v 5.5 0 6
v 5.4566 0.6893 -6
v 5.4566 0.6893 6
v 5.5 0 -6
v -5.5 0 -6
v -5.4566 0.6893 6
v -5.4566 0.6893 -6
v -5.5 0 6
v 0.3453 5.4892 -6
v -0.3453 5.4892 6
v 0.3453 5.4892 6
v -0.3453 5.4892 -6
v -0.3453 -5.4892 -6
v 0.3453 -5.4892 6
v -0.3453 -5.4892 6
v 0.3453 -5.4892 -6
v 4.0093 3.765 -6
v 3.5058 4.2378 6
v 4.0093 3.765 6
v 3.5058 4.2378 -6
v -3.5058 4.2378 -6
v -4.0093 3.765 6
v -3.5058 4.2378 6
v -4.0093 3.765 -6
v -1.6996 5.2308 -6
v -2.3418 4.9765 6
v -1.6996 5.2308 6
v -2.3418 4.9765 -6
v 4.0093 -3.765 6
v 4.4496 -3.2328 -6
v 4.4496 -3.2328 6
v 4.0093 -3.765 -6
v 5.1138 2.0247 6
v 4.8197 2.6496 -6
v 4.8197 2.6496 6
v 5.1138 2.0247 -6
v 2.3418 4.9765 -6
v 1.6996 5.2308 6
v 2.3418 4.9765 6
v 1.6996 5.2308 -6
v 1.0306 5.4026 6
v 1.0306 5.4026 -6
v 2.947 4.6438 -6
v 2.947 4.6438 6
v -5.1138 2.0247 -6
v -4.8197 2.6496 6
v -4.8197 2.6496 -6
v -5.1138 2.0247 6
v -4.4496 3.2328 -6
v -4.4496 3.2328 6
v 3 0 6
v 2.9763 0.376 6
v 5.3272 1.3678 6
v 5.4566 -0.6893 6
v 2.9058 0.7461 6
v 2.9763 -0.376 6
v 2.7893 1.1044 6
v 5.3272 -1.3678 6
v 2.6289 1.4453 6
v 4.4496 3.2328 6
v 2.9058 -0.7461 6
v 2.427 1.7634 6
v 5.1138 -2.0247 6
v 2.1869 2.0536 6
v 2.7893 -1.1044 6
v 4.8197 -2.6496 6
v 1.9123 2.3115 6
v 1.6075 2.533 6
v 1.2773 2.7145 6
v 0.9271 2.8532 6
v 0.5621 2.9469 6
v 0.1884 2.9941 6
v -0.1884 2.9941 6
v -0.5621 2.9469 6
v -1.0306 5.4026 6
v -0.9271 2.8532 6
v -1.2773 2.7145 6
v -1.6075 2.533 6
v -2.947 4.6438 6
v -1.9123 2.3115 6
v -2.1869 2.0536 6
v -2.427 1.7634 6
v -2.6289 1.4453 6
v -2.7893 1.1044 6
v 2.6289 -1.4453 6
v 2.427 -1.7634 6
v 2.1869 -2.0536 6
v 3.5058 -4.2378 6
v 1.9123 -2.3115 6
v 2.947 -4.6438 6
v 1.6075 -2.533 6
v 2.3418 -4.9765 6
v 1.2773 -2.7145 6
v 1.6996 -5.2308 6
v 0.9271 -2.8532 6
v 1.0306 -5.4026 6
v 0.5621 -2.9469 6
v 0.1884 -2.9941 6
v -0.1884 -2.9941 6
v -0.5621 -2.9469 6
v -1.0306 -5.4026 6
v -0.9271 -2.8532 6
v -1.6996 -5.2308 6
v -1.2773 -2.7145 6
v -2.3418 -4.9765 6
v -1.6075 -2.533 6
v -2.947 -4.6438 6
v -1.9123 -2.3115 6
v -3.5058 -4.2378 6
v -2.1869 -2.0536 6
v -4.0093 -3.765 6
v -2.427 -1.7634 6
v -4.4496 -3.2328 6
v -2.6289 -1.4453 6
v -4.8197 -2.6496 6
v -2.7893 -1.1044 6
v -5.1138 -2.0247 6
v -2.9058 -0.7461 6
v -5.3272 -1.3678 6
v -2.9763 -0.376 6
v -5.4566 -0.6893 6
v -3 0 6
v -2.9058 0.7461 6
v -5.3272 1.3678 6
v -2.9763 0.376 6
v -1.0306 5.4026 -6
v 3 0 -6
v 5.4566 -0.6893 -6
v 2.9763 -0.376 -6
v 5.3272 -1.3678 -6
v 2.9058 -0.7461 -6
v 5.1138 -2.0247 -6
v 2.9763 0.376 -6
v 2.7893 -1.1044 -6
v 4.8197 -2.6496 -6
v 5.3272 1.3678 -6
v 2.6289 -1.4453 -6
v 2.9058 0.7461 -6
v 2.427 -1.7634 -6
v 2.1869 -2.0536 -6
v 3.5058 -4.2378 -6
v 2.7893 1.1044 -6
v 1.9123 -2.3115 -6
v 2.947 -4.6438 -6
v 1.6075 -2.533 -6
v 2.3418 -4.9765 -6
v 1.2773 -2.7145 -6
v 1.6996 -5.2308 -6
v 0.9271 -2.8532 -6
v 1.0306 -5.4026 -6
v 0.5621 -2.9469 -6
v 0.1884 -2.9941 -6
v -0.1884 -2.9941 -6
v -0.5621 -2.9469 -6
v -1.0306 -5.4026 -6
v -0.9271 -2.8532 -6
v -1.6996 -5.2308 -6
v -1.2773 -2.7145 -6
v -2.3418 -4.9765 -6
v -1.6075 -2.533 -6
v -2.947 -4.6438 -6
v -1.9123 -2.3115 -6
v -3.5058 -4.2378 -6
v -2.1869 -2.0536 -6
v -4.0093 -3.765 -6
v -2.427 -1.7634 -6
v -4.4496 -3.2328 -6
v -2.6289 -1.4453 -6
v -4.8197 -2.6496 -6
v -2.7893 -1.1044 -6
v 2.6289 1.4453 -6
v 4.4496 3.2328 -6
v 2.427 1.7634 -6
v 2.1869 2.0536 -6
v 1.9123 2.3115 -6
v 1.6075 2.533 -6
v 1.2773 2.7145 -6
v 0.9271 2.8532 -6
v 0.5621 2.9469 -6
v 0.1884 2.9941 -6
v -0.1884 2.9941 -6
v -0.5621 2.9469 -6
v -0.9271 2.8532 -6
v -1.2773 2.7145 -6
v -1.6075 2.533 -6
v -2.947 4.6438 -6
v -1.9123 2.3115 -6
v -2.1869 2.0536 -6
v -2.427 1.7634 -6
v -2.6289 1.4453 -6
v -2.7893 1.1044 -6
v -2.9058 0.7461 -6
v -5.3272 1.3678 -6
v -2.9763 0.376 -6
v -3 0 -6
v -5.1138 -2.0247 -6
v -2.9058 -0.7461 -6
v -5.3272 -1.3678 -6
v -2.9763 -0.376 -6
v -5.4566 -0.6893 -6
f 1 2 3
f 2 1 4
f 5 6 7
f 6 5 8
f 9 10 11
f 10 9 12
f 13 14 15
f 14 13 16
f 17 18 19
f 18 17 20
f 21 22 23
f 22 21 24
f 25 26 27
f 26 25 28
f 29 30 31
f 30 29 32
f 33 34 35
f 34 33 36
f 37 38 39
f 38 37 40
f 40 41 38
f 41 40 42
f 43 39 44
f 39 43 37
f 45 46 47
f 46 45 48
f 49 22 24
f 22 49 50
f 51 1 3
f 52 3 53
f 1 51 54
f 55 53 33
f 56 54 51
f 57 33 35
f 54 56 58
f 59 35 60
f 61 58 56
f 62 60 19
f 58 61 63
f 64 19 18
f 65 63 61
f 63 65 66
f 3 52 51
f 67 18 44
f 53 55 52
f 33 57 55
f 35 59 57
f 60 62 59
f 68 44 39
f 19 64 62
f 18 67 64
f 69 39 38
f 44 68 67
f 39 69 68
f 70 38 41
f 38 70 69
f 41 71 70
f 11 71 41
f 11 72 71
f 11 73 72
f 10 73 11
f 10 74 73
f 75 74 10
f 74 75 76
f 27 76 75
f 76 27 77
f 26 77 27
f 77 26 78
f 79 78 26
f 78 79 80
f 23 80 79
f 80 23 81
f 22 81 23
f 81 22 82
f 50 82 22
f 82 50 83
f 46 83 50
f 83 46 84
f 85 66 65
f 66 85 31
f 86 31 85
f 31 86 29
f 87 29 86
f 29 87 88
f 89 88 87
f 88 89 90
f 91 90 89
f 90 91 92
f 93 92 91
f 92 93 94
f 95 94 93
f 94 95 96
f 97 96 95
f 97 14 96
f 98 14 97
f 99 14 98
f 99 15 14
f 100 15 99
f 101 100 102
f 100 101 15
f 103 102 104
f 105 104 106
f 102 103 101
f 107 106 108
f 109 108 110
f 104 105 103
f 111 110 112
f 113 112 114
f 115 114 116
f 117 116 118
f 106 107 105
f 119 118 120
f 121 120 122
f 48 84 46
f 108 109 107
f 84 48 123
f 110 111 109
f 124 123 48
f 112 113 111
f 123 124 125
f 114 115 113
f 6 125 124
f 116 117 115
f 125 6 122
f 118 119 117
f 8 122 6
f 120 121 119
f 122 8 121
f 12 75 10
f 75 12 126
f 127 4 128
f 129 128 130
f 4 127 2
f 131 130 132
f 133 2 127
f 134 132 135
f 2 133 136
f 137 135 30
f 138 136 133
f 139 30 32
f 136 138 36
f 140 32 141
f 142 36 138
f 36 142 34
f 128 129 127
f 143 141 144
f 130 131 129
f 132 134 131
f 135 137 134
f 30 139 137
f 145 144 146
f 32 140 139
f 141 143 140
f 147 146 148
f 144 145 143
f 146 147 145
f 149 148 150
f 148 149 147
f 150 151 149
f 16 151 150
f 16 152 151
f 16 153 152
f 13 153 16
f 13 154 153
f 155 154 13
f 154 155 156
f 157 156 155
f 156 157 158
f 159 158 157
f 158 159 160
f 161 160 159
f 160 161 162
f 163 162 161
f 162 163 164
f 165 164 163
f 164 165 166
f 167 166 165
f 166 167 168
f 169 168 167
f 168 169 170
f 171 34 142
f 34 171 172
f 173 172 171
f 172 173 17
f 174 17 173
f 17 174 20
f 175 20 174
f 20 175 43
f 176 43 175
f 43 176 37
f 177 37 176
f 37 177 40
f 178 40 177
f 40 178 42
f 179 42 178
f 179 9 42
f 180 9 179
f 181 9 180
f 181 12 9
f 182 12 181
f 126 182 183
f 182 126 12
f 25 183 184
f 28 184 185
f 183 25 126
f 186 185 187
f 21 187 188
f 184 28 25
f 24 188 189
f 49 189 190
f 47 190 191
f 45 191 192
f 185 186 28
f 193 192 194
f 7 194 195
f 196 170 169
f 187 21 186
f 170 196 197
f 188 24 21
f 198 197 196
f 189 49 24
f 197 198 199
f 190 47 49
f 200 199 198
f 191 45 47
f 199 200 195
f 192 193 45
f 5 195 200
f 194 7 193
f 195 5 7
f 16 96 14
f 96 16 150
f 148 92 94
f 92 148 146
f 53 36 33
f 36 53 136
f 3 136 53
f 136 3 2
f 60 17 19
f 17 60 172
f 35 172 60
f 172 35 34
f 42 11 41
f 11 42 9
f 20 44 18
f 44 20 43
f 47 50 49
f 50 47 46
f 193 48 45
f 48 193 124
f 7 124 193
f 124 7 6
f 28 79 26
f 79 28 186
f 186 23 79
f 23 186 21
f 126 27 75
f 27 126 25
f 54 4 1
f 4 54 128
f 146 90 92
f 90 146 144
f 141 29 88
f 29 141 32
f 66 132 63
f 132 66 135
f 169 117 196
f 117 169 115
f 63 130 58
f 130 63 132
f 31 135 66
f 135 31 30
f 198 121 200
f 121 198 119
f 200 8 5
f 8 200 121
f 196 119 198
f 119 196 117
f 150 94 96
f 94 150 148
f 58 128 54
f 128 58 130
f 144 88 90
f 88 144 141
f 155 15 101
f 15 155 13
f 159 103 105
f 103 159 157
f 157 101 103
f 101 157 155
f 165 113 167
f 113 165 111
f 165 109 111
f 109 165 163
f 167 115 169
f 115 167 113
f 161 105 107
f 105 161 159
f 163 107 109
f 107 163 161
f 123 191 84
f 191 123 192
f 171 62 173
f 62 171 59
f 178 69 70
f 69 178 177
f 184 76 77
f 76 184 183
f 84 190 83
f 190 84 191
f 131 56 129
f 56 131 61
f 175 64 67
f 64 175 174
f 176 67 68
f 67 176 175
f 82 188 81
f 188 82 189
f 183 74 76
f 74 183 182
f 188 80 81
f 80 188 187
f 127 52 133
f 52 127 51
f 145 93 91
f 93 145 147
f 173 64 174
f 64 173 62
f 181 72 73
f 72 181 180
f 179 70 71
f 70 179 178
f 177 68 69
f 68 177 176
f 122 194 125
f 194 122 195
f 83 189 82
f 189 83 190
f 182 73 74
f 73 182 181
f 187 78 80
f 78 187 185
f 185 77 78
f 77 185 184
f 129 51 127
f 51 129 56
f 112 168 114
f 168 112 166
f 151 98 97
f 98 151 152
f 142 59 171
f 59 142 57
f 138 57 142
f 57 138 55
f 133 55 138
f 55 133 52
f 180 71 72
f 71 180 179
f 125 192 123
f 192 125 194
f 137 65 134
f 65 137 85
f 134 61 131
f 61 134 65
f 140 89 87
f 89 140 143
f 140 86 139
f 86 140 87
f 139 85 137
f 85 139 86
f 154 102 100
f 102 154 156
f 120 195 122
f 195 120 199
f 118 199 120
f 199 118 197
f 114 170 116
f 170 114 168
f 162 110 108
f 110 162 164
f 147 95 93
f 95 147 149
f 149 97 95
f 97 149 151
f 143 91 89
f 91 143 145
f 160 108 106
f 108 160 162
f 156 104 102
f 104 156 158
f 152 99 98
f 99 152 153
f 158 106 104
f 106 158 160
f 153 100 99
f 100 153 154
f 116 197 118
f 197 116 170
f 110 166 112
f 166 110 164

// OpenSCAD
$fn = 50;


difference() {
	union() {
		translate(v = [0, 0, -6.0000000000]) {
			cylinder(h = 12, r = 5.5000000000);
		}
	}
	union() {
		translate(v = [0, 0, -100.0000000000]) {
			cylinder(h = 200, r = 3);
		}
	}
}
